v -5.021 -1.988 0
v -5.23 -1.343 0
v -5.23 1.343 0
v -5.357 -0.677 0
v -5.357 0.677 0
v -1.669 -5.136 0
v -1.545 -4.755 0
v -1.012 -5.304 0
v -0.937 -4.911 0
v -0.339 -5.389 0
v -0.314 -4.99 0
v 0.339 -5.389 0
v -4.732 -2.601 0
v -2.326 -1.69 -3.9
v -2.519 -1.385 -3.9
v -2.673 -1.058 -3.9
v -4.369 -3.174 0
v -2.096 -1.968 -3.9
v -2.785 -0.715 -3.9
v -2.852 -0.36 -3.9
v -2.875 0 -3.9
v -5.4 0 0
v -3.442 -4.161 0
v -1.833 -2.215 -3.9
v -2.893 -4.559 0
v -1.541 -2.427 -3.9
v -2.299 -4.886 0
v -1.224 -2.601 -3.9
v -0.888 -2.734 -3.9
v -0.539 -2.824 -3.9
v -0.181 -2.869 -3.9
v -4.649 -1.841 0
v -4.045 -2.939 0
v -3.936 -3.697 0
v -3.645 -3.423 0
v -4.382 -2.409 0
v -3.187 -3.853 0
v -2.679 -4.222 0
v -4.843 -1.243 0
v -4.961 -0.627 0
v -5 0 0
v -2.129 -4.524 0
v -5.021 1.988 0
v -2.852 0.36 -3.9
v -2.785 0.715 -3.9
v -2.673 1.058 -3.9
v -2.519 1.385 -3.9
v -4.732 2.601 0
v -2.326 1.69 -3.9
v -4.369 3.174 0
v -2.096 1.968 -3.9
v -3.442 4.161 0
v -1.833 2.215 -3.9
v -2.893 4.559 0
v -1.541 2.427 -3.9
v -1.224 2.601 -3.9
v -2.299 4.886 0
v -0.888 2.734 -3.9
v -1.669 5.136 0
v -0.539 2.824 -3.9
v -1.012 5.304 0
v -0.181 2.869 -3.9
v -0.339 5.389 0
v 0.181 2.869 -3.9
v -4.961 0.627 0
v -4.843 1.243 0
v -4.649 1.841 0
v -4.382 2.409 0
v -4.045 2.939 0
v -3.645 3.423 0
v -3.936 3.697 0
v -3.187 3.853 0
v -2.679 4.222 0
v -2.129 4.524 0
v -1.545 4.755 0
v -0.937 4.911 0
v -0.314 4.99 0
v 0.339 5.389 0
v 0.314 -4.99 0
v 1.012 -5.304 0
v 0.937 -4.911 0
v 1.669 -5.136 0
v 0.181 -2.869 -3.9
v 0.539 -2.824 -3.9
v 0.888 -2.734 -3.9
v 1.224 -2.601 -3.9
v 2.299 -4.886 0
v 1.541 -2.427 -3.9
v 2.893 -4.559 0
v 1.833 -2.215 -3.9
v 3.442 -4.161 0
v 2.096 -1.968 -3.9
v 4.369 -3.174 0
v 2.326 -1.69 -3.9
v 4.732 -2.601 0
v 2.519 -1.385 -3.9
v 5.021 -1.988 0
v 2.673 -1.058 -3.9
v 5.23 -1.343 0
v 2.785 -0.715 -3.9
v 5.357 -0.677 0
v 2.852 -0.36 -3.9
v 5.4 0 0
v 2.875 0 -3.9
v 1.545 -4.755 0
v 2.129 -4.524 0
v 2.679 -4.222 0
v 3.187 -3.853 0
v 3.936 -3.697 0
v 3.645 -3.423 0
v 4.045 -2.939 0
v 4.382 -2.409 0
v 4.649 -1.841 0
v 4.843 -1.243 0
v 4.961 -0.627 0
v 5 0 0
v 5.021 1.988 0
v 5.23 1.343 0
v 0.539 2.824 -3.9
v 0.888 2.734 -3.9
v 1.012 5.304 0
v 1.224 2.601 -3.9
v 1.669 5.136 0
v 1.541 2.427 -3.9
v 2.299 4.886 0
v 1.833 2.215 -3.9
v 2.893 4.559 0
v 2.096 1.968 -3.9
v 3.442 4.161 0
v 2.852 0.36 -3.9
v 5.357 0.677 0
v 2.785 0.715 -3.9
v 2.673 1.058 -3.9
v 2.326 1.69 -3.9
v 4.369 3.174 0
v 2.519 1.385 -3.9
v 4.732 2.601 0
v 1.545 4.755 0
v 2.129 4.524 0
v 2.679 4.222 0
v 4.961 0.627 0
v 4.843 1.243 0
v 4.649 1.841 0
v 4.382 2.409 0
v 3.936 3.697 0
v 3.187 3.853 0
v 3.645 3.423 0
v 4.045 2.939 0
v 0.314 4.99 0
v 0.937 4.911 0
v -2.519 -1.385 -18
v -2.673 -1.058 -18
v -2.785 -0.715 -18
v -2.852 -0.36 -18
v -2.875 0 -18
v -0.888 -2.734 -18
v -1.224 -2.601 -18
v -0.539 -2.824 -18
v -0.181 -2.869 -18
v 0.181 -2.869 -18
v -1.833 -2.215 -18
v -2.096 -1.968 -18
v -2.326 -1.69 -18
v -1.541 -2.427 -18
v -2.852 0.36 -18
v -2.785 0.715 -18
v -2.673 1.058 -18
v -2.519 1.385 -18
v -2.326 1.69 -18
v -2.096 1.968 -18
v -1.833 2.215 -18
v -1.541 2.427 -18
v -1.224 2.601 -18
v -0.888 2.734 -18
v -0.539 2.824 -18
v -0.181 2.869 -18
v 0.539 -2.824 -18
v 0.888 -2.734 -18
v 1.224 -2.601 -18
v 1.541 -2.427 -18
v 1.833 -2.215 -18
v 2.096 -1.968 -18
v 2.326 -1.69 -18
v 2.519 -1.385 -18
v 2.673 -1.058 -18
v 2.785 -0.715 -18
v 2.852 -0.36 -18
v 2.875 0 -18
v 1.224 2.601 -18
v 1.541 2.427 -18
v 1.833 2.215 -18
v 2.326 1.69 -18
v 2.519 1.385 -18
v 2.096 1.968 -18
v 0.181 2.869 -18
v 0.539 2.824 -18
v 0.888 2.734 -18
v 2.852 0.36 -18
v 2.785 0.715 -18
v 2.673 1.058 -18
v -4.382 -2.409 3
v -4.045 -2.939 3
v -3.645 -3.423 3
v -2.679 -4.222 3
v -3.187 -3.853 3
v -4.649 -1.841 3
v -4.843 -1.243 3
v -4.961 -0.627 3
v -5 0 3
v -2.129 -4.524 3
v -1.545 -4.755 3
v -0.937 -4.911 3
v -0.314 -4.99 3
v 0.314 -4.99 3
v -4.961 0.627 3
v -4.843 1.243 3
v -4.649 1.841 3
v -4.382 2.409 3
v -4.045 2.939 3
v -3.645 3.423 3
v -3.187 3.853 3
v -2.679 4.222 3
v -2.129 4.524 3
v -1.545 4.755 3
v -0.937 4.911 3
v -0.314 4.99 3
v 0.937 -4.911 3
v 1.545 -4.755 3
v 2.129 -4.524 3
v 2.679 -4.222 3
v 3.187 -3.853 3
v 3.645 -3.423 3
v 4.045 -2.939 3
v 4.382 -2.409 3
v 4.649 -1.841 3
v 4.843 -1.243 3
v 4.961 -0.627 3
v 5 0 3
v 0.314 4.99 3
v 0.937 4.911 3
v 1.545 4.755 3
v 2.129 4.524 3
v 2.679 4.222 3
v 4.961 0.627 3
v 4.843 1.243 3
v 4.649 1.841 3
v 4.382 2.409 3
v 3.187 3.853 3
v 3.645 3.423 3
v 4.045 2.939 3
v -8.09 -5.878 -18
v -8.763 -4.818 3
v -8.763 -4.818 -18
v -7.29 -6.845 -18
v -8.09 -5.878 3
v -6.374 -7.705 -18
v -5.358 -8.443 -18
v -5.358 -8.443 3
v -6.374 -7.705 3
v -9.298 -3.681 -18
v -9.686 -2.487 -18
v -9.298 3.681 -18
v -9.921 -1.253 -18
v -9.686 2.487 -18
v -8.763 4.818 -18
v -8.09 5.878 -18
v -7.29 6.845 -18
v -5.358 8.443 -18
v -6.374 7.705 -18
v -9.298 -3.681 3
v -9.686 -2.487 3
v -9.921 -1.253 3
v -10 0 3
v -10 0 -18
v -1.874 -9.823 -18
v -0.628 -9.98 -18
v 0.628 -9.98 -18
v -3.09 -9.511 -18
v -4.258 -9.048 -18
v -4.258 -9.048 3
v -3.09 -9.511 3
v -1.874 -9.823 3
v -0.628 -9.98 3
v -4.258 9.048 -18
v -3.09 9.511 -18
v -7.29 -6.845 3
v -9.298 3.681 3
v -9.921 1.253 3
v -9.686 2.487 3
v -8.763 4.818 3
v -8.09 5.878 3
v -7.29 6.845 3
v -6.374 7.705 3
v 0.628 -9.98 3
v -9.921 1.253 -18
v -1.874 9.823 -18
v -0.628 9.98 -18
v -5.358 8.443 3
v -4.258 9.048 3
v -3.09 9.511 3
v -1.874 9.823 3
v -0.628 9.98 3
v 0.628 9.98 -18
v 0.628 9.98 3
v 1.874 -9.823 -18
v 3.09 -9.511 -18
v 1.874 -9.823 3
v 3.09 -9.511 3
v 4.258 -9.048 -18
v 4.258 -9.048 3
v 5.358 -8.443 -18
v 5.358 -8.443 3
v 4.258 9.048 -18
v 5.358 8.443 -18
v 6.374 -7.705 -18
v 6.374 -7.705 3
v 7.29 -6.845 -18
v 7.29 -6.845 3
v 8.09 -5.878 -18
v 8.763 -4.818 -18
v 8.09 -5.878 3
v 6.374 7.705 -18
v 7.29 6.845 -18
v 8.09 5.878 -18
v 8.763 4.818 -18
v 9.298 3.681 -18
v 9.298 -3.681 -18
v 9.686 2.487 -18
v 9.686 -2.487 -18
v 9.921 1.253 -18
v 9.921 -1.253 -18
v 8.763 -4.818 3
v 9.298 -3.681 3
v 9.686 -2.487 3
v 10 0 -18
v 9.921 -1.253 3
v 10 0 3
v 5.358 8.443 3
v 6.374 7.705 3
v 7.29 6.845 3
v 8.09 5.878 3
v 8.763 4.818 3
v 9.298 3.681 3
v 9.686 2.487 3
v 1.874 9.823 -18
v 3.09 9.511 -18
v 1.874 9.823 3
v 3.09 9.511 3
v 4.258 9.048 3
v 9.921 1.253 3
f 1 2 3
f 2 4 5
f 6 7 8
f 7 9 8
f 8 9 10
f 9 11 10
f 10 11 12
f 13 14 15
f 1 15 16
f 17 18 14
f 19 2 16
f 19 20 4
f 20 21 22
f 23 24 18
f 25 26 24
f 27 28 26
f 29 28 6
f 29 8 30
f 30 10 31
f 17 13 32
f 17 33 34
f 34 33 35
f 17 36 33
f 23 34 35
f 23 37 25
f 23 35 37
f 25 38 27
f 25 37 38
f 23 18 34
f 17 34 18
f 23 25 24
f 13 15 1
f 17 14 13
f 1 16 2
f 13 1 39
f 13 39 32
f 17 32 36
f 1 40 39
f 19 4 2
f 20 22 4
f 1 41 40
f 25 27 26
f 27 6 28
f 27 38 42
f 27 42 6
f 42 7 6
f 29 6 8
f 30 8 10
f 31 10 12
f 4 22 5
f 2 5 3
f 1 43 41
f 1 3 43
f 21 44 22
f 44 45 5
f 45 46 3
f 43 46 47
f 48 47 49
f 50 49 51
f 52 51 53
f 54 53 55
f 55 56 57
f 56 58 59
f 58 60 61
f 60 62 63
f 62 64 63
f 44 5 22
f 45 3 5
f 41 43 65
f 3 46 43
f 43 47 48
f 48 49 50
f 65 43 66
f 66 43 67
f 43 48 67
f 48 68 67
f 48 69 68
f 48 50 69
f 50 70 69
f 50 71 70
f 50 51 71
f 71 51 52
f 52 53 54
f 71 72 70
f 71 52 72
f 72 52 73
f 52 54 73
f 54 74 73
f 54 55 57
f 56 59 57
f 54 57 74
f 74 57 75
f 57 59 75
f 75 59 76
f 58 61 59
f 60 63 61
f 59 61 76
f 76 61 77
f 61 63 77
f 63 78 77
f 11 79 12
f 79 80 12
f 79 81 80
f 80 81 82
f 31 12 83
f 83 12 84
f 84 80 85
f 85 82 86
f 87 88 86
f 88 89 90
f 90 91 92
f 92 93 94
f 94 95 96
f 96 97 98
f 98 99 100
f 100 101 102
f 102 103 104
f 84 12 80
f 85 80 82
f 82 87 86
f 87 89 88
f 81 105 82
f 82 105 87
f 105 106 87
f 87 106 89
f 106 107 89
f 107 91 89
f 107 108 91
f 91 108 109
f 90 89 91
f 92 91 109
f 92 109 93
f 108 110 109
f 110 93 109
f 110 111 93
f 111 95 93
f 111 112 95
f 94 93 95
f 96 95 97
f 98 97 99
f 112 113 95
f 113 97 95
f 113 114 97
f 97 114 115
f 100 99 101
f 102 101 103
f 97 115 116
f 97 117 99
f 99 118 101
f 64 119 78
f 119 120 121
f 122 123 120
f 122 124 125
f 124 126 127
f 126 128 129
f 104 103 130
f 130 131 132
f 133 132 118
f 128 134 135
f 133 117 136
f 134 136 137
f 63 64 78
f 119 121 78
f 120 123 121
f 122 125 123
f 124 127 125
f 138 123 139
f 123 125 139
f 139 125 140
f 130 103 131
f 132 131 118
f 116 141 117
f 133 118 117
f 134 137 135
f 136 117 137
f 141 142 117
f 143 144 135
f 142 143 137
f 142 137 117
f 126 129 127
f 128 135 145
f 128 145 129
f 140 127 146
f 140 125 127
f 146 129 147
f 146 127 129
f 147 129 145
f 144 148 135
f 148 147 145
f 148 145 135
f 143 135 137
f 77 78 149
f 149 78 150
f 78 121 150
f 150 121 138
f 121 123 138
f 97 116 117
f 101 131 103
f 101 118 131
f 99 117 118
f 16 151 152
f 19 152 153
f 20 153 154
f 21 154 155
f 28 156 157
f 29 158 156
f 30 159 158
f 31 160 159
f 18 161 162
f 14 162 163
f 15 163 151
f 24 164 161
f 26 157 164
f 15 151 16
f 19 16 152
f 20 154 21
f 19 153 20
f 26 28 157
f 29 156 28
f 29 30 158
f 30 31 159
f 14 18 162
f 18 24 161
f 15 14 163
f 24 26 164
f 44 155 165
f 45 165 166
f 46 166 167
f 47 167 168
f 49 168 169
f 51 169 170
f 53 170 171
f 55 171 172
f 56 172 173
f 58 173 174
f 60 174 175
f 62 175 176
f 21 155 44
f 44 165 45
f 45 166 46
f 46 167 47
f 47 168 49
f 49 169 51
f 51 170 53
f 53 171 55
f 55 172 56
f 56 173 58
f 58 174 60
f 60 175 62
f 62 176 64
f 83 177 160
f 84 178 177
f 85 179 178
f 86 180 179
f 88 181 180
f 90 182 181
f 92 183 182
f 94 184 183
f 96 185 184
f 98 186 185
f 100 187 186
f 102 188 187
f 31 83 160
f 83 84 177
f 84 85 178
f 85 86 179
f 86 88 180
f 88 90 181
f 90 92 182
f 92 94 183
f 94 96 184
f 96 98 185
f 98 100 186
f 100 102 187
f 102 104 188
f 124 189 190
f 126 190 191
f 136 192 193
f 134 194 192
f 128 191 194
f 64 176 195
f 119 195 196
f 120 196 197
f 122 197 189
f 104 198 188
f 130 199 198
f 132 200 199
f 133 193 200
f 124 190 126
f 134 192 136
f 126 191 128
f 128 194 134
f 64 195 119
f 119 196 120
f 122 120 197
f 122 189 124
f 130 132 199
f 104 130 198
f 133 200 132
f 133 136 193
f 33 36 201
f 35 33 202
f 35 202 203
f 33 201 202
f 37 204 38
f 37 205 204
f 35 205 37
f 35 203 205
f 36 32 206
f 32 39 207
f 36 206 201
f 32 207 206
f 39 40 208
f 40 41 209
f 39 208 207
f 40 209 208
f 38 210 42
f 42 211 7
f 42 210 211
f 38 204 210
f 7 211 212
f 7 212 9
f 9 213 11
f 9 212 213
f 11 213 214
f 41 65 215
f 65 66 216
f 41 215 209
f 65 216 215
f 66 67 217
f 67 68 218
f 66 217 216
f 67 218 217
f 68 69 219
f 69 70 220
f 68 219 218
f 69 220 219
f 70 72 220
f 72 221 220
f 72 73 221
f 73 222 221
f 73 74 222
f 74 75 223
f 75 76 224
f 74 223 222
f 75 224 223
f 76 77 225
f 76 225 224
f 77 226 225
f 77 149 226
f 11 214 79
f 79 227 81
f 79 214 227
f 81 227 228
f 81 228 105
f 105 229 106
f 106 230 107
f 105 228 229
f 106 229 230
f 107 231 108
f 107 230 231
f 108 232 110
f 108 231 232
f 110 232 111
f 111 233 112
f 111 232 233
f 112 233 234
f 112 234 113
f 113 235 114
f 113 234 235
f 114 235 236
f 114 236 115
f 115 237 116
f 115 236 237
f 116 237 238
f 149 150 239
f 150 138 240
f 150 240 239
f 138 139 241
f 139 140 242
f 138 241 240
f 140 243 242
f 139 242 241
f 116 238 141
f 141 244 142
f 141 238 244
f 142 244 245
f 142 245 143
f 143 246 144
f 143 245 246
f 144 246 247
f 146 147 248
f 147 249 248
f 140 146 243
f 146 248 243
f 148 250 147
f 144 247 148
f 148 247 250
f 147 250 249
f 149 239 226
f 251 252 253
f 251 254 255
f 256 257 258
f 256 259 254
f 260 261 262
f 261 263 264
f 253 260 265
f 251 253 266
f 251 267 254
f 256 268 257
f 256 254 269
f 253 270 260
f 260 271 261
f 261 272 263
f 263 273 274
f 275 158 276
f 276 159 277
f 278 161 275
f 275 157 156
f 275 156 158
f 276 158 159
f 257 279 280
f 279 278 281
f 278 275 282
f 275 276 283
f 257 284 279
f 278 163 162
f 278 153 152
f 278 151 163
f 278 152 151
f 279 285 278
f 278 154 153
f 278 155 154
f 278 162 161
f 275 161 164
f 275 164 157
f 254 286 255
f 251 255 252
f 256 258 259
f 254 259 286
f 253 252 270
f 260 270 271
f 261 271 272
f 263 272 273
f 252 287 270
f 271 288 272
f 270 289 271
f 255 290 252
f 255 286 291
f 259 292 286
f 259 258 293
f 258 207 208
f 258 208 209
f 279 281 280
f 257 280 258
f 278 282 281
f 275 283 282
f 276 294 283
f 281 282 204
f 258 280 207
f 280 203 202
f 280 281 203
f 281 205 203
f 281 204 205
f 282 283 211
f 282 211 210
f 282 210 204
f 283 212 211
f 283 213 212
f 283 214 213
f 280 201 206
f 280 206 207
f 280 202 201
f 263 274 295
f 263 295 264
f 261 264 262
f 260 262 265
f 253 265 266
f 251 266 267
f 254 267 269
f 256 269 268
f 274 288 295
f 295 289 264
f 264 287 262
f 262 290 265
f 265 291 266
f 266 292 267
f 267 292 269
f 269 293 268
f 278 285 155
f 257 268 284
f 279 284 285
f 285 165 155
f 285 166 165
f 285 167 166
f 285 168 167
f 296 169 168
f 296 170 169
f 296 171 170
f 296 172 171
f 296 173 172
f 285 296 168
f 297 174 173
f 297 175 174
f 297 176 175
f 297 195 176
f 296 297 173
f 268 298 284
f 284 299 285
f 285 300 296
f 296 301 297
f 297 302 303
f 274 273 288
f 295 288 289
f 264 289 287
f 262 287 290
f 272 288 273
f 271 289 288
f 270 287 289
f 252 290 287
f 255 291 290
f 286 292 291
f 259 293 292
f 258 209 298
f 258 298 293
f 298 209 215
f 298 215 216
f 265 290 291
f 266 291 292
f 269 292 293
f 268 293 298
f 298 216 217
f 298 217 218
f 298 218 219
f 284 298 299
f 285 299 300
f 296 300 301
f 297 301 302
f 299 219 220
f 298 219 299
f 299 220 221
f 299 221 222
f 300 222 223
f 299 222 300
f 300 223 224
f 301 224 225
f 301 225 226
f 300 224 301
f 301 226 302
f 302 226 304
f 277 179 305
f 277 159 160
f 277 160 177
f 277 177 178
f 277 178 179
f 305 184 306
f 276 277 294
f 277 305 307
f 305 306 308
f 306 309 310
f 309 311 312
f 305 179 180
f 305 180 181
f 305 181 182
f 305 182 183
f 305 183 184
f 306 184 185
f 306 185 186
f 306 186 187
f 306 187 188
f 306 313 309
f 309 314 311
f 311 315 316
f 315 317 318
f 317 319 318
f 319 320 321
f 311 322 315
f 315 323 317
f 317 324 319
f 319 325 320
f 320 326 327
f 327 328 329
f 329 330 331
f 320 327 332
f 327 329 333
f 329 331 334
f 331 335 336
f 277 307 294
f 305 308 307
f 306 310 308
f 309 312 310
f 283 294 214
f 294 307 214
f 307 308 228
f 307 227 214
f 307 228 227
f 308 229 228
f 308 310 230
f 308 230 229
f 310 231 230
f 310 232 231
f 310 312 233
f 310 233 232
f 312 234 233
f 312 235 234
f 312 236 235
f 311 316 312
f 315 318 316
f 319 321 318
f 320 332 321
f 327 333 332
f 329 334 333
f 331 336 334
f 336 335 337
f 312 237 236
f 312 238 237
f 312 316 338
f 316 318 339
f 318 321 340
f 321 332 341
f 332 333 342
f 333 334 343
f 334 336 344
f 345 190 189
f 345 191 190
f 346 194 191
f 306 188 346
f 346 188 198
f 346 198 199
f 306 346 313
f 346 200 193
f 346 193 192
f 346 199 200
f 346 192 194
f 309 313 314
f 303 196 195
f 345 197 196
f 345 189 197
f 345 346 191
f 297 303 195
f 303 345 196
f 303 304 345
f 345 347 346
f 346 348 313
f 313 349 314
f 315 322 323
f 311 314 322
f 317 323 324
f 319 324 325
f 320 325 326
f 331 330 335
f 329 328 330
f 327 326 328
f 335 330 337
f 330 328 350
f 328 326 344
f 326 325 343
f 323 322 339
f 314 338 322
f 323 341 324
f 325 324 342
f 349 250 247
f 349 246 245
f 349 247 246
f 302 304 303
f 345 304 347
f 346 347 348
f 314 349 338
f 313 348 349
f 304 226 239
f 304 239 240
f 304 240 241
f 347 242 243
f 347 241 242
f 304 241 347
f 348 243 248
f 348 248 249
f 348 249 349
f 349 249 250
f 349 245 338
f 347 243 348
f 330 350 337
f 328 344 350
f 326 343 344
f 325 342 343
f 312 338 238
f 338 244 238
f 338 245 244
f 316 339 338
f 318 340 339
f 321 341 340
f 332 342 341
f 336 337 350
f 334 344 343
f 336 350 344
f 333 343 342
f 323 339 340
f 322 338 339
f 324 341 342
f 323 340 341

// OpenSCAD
$fn = 50;


difference() {
	union() {
		translate(v = [0, 0, -18.0000000000]) {
			cylinder(h = 21, r = 10.0000000000);
		}
	}
	union() {
		translate(v = [0, 0, 0]) {
			rotate(a = [0, 0, 0]) {
				difference() {
					union() {
						translate(v = [0, 0, -21.0000000000]) {
							cylinder(h = 21, r = 2.6000000000);
						}
						translate(v = [0, 0, -3.9000000000]) {
							cylinder(h = 3.9000000000, r1 = 2.8750000000, r2 = 5.4000000000);
						}
						translate(v = [0, 0, -21.0000000000]) {
							cylinder(h = 21, r = 2.8750000000);
						}
						translate(v = [0, 0, -21.0000000000]) {
							cylinder(h = 21, r = 2.6000000000);
						}
					}
					union();
				}
			}
		}
		#cylinder(h = 3, r = 5.0000000000);
	}
}
